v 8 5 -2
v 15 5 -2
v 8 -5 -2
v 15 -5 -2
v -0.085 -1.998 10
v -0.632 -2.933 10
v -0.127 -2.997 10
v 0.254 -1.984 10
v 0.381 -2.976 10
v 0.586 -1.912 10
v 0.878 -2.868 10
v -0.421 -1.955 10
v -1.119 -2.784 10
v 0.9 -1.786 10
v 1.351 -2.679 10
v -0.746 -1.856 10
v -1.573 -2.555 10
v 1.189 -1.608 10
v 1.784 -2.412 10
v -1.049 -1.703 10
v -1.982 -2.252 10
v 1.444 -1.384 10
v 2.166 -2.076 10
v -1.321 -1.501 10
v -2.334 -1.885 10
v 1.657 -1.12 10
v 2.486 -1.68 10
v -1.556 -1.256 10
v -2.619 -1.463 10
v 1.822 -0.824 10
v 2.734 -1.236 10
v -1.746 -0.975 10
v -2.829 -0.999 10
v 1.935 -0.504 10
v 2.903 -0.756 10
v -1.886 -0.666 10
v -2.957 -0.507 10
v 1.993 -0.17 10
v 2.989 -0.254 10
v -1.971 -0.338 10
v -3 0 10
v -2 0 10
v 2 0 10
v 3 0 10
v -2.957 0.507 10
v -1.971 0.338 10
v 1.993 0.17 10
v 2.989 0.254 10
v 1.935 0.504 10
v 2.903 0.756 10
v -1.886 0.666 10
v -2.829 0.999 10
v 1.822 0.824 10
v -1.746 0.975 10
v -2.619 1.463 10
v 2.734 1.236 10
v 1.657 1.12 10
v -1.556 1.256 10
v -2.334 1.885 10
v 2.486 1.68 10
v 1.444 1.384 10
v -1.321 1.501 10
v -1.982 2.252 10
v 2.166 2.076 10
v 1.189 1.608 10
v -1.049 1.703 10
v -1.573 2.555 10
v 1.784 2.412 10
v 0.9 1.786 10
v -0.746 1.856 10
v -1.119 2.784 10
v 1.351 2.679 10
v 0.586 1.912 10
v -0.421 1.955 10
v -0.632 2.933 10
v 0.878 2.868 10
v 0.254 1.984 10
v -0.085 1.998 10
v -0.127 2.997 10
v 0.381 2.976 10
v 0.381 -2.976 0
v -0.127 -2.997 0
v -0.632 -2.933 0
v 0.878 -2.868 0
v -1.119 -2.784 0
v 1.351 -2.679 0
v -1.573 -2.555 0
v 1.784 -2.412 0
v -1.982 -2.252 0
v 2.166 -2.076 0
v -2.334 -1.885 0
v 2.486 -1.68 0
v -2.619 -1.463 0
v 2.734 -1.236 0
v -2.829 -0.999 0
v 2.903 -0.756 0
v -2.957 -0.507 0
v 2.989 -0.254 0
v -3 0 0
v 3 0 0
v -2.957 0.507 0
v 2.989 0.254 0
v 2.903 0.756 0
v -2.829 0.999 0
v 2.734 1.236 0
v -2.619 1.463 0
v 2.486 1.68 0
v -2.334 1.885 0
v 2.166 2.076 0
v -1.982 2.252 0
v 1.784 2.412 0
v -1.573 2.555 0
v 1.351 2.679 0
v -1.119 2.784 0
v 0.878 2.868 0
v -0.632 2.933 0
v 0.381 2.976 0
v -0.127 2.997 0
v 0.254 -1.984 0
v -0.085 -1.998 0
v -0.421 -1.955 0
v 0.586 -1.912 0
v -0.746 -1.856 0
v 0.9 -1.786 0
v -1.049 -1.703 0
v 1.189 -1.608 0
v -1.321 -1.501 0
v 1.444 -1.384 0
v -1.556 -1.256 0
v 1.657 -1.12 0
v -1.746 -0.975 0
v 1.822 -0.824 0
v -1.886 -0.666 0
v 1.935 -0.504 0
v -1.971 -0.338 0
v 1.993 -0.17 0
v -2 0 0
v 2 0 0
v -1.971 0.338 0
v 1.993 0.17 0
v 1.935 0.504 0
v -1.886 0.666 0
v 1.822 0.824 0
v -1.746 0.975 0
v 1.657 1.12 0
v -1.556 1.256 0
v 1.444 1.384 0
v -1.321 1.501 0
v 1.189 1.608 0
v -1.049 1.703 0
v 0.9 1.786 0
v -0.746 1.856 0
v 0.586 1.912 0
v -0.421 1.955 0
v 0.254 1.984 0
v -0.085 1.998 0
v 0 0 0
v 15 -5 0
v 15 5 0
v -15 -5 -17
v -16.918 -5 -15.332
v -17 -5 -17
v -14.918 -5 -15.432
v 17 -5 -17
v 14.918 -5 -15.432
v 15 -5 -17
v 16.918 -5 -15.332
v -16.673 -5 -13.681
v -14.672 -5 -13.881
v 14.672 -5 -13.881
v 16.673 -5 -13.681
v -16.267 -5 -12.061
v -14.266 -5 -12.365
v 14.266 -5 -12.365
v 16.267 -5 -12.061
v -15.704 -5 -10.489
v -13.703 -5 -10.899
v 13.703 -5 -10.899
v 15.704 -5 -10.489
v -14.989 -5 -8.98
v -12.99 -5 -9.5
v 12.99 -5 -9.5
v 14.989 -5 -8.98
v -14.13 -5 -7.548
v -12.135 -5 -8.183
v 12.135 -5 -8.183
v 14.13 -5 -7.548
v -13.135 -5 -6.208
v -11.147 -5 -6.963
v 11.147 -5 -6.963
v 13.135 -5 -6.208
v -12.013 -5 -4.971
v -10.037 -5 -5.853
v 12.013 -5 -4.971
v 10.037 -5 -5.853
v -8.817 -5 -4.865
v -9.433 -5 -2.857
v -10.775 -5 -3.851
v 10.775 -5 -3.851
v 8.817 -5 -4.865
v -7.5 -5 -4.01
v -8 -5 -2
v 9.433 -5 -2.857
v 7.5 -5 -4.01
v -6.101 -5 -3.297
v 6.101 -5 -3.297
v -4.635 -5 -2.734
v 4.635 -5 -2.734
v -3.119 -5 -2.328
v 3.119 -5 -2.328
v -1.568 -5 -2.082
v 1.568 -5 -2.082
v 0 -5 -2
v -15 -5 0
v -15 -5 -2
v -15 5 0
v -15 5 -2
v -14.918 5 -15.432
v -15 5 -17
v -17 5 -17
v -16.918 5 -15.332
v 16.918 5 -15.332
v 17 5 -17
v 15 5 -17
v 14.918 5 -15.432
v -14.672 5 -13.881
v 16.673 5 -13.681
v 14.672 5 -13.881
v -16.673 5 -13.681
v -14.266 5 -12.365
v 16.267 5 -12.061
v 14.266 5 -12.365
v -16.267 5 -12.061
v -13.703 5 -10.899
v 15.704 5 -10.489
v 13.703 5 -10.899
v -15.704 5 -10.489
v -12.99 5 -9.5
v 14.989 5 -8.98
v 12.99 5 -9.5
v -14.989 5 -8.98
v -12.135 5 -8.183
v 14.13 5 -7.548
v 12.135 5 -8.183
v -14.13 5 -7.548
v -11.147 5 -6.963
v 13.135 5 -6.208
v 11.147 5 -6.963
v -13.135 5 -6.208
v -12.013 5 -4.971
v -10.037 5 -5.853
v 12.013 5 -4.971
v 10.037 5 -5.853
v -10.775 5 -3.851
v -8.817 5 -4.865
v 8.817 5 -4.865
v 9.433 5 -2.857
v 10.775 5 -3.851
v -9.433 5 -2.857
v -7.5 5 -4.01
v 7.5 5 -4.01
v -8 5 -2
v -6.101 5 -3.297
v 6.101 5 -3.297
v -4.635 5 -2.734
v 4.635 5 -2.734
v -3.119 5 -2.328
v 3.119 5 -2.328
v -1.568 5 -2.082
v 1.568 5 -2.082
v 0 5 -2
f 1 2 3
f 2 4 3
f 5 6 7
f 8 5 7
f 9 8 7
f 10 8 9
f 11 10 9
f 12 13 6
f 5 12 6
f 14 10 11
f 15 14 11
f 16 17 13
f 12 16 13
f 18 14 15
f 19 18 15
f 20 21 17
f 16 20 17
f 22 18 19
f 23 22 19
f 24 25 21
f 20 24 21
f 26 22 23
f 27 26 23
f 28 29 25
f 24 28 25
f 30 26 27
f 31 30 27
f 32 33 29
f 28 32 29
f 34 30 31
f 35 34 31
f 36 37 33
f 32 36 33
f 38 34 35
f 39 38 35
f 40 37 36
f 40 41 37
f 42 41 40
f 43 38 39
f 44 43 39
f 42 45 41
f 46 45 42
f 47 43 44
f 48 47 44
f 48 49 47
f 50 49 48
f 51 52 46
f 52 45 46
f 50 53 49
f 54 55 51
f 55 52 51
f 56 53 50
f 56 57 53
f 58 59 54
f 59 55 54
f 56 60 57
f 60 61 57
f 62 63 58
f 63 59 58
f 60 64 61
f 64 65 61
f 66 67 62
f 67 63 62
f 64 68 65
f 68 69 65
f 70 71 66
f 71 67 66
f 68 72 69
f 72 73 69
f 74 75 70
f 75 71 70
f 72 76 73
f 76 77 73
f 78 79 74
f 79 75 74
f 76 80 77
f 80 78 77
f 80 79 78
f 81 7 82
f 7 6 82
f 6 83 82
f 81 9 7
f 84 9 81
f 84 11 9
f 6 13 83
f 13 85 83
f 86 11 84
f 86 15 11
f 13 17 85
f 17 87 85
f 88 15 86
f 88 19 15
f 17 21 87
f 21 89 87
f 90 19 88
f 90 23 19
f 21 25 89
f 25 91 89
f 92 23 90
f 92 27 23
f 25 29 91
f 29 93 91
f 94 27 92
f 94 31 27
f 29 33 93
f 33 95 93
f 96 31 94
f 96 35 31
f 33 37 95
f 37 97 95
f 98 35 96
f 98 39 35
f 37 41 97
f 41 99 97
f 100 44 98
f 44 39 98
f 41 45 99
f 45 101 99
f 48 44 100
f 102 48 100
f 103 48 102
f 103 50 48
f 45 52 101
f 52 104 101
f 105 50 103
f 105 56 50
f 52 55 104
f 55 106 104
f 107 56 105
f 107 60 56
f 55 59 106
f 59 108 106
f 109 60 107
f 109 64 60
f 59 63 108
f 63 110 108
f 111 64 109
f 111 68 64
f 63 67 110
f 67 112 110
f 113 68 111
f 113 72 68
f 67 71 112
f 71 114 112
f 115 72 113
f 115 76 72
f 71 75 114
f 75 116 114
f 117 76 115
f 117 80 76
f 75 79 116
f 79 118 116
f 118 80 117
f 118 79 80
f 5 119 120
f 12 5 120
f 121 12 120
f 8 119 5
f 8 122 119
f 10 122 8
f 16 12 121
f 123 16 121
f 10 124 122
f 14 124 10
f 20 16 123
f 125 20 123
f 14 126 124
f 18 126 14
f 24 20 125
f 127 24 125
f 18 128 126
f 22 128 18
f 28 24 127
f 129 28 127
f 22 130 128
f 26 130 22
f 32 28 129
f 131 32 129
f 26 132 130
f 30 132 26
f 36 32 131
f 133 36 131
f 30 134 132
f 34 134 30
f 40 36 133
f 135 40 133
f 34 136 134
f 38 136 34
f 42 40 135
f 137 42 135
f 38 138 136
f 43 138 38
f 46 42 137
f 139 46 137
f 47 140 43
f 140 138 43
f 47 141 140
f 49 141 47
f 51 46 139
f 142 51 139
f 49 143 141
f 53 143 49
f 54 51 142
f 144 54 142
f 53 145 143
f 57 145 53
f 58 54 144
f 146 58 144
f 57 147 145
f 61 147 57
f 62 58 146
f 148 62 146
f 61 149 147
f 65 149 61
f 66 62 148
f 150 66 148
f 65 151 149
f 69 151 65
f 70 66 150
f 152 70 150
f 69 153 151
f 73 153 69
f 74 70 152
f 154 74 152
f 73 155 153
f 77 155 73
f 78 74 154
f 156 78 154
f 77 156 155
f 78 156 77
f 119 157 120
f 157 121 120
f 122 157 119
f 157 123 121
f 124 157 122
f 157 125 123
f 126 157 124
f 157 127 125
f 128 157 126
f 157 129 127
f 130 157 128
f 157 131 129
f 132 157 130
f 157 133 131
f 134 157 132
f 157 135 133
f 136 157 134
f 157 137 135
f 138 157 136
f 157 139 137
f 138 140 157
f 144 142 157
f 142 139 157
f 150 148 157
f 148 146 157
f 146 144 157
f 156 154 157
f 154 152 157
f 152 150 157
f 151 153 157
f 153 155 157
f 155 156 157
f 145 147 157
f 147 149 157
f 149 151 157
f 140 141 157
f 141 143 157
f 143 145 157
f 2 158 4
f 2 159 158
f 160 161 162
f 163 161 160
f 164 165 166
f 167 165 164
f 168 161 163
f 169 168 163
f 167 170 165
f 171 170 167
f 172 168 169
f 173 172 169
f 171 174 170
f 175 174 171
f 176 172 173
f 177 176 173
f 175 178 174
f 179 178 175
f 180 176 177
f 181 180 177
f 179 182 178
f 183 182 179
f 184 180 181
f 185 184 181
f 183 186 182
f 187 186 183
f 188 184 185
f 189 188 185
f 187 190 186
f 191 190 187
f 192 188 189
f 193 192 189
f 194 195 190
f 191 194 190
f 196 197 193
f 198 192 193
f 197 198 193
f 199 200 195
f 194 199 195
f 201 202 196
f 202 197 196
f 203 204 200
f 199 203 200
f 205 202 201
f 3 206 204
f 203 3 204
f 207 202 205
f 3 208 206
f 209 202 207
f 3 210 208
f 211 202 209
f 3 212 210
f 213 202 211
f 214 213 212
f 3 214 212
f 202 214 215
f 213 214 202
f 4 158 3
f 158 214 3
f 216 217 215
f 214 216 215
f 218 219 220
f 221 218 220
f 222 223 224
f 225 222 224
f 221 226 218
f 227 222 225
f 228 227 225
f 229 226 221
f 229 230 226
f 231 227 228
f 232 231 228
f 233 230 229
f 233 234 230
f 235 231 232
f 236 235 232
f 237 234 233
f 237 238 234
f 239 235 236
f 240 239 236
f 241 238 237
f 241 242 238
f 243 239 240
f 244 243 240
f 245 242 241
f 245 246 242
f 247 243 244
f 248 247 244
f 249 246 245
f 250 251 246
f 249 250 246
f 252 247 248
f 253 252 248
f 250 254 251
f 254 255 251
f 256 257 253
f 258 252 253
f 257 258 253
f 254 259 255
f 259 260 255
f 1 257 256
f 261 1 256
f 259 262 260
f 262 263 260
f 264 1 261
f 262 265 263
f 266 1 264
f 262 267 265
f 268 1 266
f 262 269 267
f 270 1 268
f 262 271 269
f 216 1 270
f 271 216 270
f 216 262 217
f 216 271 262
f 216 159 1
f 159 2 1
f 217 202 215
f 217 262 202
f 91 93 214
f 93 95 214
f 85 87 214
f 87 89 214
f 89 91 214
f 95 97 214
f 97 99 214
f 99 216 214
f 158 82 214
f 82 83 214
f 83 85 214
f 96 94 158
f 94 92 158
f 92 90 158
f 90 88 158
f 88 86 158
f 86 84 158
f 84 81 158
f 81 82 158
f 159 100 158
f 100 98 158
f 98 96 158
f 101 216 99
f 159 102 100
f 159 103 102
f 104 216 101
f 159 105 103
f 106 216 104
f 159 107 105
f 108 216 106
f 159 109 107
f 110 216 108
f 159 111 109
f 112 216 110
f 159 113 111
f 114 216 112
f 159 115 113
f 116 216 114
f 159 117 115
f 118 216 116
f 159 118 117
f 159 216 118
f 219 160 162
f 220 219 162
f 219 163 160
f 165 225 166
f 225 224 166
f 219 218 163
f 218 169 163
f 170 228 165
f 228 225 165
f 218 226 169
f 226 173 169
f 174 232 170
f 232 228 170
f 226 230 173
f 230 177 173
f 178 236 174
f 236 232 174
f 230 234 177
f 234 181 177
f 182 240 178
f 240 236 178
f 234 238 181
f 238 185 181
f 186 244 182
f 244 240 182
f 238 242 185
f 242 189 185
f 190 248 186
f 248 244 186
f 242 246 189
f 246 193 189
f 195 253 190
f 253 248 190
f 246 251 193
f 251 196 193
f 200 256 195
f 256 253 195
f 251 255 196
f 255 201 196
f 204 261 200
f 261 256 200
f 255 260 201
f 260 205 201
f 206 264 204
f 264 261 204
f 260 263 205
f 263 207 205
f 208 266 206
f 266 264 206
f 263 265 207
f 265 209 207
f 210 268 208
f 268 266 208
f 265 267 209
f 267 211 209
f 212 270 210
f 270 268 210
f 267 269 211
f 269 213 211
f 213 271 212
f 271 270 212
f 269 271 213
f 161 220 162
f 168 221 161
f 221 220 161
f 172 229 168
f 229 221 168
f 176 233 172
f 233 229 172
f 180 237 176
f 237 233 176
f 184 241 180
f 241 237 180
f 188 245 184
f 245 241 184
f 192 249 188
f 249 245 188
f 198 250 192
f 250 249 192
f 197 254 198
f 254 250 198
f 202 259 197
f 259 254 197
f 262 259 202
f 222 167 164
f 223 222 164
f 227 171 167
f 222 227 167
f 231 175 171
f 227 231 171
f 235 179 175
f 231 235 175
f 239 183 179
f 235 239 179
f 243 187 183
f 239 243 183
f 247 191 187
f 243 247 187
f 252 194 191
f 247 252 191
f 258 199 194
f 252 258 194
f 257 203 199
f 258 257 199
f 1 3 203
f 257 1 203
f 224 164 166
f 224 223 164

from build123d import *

# Parameters (mm, degrees)
SKETCH1_R                = 3
SKETCH1_R_2              = 2
BOSS_EXTRUDE1_DEPTH      = 10
BOSS_EXTRUDE2_DEPTH      = 2
BOSS_EXTRUDE3_DEPTH      = 5
BOSS_EXTRUDE3_DEPTH_BACK = 5


with BuildPart() as part:
    # Sketch1 → Boss-Extrude1 (new body)
    with BuildSketch(Plane.XY):
        Circle(SKETCH1_R)
        Circle(SKETCH1_R_2, mode=Mode.SUBTRACT)
    extrude(amount=BOSS_EXTRUDE1_DEPTH)

    # Sketch2 → Boss-Extrude2 (add)
    with BuildSketch(Plane(origin=(0, 0, 0), x_dir=(-1, 0, 0), z_dir=(0, 0, -1))):
        Polygon((0, 5), (15, 5), (15, -5), (-15, -5), (-15, 5), align=None)
    extrude(amount=BOSS_EXTRUDE2_DEPTH)

    # Sketch4 → Boss-Extrude3 (add, two sides: drawn at the far end of the back side and taken through both)
    with BuildSketch(Plane(origin=(0, 0, 0), x_dir=(1, 0, 0), z_dir=(0, 1, 0)).offset(-BOSS_EXTRUDE3_DEPTH_BACK)):
        with BuildLine():
            ThreePointArc((-17, 17), (-14.577379737, 8.253572158), (-8, 2))
            Line((-8, 2), (-2.6e-08, 2))
            ThreePointArc((-2.6e-08, 2), (-10.606601727, 6.393398292), (-15, 17))
            Line((-15, 17), (-17, 17))
        make_face()
        with BuildLine():
            ThreePointArc((15, 17), (10.606601708, 6.393398273), (-2.6e-08, 2))
            Line((-2.6e-08, 2), (8, 2))
            ThreePointArc((8, 2), (14.577379737, 8.253572158), (17, 17))
            Line((17, 17), (15, 17))
        make_face()
    extrude(amount=BOSS_EXTRUDE3_DEPTH + BOSS_EXTRUDE3_DEPTH_BACK)


solid = part.part
